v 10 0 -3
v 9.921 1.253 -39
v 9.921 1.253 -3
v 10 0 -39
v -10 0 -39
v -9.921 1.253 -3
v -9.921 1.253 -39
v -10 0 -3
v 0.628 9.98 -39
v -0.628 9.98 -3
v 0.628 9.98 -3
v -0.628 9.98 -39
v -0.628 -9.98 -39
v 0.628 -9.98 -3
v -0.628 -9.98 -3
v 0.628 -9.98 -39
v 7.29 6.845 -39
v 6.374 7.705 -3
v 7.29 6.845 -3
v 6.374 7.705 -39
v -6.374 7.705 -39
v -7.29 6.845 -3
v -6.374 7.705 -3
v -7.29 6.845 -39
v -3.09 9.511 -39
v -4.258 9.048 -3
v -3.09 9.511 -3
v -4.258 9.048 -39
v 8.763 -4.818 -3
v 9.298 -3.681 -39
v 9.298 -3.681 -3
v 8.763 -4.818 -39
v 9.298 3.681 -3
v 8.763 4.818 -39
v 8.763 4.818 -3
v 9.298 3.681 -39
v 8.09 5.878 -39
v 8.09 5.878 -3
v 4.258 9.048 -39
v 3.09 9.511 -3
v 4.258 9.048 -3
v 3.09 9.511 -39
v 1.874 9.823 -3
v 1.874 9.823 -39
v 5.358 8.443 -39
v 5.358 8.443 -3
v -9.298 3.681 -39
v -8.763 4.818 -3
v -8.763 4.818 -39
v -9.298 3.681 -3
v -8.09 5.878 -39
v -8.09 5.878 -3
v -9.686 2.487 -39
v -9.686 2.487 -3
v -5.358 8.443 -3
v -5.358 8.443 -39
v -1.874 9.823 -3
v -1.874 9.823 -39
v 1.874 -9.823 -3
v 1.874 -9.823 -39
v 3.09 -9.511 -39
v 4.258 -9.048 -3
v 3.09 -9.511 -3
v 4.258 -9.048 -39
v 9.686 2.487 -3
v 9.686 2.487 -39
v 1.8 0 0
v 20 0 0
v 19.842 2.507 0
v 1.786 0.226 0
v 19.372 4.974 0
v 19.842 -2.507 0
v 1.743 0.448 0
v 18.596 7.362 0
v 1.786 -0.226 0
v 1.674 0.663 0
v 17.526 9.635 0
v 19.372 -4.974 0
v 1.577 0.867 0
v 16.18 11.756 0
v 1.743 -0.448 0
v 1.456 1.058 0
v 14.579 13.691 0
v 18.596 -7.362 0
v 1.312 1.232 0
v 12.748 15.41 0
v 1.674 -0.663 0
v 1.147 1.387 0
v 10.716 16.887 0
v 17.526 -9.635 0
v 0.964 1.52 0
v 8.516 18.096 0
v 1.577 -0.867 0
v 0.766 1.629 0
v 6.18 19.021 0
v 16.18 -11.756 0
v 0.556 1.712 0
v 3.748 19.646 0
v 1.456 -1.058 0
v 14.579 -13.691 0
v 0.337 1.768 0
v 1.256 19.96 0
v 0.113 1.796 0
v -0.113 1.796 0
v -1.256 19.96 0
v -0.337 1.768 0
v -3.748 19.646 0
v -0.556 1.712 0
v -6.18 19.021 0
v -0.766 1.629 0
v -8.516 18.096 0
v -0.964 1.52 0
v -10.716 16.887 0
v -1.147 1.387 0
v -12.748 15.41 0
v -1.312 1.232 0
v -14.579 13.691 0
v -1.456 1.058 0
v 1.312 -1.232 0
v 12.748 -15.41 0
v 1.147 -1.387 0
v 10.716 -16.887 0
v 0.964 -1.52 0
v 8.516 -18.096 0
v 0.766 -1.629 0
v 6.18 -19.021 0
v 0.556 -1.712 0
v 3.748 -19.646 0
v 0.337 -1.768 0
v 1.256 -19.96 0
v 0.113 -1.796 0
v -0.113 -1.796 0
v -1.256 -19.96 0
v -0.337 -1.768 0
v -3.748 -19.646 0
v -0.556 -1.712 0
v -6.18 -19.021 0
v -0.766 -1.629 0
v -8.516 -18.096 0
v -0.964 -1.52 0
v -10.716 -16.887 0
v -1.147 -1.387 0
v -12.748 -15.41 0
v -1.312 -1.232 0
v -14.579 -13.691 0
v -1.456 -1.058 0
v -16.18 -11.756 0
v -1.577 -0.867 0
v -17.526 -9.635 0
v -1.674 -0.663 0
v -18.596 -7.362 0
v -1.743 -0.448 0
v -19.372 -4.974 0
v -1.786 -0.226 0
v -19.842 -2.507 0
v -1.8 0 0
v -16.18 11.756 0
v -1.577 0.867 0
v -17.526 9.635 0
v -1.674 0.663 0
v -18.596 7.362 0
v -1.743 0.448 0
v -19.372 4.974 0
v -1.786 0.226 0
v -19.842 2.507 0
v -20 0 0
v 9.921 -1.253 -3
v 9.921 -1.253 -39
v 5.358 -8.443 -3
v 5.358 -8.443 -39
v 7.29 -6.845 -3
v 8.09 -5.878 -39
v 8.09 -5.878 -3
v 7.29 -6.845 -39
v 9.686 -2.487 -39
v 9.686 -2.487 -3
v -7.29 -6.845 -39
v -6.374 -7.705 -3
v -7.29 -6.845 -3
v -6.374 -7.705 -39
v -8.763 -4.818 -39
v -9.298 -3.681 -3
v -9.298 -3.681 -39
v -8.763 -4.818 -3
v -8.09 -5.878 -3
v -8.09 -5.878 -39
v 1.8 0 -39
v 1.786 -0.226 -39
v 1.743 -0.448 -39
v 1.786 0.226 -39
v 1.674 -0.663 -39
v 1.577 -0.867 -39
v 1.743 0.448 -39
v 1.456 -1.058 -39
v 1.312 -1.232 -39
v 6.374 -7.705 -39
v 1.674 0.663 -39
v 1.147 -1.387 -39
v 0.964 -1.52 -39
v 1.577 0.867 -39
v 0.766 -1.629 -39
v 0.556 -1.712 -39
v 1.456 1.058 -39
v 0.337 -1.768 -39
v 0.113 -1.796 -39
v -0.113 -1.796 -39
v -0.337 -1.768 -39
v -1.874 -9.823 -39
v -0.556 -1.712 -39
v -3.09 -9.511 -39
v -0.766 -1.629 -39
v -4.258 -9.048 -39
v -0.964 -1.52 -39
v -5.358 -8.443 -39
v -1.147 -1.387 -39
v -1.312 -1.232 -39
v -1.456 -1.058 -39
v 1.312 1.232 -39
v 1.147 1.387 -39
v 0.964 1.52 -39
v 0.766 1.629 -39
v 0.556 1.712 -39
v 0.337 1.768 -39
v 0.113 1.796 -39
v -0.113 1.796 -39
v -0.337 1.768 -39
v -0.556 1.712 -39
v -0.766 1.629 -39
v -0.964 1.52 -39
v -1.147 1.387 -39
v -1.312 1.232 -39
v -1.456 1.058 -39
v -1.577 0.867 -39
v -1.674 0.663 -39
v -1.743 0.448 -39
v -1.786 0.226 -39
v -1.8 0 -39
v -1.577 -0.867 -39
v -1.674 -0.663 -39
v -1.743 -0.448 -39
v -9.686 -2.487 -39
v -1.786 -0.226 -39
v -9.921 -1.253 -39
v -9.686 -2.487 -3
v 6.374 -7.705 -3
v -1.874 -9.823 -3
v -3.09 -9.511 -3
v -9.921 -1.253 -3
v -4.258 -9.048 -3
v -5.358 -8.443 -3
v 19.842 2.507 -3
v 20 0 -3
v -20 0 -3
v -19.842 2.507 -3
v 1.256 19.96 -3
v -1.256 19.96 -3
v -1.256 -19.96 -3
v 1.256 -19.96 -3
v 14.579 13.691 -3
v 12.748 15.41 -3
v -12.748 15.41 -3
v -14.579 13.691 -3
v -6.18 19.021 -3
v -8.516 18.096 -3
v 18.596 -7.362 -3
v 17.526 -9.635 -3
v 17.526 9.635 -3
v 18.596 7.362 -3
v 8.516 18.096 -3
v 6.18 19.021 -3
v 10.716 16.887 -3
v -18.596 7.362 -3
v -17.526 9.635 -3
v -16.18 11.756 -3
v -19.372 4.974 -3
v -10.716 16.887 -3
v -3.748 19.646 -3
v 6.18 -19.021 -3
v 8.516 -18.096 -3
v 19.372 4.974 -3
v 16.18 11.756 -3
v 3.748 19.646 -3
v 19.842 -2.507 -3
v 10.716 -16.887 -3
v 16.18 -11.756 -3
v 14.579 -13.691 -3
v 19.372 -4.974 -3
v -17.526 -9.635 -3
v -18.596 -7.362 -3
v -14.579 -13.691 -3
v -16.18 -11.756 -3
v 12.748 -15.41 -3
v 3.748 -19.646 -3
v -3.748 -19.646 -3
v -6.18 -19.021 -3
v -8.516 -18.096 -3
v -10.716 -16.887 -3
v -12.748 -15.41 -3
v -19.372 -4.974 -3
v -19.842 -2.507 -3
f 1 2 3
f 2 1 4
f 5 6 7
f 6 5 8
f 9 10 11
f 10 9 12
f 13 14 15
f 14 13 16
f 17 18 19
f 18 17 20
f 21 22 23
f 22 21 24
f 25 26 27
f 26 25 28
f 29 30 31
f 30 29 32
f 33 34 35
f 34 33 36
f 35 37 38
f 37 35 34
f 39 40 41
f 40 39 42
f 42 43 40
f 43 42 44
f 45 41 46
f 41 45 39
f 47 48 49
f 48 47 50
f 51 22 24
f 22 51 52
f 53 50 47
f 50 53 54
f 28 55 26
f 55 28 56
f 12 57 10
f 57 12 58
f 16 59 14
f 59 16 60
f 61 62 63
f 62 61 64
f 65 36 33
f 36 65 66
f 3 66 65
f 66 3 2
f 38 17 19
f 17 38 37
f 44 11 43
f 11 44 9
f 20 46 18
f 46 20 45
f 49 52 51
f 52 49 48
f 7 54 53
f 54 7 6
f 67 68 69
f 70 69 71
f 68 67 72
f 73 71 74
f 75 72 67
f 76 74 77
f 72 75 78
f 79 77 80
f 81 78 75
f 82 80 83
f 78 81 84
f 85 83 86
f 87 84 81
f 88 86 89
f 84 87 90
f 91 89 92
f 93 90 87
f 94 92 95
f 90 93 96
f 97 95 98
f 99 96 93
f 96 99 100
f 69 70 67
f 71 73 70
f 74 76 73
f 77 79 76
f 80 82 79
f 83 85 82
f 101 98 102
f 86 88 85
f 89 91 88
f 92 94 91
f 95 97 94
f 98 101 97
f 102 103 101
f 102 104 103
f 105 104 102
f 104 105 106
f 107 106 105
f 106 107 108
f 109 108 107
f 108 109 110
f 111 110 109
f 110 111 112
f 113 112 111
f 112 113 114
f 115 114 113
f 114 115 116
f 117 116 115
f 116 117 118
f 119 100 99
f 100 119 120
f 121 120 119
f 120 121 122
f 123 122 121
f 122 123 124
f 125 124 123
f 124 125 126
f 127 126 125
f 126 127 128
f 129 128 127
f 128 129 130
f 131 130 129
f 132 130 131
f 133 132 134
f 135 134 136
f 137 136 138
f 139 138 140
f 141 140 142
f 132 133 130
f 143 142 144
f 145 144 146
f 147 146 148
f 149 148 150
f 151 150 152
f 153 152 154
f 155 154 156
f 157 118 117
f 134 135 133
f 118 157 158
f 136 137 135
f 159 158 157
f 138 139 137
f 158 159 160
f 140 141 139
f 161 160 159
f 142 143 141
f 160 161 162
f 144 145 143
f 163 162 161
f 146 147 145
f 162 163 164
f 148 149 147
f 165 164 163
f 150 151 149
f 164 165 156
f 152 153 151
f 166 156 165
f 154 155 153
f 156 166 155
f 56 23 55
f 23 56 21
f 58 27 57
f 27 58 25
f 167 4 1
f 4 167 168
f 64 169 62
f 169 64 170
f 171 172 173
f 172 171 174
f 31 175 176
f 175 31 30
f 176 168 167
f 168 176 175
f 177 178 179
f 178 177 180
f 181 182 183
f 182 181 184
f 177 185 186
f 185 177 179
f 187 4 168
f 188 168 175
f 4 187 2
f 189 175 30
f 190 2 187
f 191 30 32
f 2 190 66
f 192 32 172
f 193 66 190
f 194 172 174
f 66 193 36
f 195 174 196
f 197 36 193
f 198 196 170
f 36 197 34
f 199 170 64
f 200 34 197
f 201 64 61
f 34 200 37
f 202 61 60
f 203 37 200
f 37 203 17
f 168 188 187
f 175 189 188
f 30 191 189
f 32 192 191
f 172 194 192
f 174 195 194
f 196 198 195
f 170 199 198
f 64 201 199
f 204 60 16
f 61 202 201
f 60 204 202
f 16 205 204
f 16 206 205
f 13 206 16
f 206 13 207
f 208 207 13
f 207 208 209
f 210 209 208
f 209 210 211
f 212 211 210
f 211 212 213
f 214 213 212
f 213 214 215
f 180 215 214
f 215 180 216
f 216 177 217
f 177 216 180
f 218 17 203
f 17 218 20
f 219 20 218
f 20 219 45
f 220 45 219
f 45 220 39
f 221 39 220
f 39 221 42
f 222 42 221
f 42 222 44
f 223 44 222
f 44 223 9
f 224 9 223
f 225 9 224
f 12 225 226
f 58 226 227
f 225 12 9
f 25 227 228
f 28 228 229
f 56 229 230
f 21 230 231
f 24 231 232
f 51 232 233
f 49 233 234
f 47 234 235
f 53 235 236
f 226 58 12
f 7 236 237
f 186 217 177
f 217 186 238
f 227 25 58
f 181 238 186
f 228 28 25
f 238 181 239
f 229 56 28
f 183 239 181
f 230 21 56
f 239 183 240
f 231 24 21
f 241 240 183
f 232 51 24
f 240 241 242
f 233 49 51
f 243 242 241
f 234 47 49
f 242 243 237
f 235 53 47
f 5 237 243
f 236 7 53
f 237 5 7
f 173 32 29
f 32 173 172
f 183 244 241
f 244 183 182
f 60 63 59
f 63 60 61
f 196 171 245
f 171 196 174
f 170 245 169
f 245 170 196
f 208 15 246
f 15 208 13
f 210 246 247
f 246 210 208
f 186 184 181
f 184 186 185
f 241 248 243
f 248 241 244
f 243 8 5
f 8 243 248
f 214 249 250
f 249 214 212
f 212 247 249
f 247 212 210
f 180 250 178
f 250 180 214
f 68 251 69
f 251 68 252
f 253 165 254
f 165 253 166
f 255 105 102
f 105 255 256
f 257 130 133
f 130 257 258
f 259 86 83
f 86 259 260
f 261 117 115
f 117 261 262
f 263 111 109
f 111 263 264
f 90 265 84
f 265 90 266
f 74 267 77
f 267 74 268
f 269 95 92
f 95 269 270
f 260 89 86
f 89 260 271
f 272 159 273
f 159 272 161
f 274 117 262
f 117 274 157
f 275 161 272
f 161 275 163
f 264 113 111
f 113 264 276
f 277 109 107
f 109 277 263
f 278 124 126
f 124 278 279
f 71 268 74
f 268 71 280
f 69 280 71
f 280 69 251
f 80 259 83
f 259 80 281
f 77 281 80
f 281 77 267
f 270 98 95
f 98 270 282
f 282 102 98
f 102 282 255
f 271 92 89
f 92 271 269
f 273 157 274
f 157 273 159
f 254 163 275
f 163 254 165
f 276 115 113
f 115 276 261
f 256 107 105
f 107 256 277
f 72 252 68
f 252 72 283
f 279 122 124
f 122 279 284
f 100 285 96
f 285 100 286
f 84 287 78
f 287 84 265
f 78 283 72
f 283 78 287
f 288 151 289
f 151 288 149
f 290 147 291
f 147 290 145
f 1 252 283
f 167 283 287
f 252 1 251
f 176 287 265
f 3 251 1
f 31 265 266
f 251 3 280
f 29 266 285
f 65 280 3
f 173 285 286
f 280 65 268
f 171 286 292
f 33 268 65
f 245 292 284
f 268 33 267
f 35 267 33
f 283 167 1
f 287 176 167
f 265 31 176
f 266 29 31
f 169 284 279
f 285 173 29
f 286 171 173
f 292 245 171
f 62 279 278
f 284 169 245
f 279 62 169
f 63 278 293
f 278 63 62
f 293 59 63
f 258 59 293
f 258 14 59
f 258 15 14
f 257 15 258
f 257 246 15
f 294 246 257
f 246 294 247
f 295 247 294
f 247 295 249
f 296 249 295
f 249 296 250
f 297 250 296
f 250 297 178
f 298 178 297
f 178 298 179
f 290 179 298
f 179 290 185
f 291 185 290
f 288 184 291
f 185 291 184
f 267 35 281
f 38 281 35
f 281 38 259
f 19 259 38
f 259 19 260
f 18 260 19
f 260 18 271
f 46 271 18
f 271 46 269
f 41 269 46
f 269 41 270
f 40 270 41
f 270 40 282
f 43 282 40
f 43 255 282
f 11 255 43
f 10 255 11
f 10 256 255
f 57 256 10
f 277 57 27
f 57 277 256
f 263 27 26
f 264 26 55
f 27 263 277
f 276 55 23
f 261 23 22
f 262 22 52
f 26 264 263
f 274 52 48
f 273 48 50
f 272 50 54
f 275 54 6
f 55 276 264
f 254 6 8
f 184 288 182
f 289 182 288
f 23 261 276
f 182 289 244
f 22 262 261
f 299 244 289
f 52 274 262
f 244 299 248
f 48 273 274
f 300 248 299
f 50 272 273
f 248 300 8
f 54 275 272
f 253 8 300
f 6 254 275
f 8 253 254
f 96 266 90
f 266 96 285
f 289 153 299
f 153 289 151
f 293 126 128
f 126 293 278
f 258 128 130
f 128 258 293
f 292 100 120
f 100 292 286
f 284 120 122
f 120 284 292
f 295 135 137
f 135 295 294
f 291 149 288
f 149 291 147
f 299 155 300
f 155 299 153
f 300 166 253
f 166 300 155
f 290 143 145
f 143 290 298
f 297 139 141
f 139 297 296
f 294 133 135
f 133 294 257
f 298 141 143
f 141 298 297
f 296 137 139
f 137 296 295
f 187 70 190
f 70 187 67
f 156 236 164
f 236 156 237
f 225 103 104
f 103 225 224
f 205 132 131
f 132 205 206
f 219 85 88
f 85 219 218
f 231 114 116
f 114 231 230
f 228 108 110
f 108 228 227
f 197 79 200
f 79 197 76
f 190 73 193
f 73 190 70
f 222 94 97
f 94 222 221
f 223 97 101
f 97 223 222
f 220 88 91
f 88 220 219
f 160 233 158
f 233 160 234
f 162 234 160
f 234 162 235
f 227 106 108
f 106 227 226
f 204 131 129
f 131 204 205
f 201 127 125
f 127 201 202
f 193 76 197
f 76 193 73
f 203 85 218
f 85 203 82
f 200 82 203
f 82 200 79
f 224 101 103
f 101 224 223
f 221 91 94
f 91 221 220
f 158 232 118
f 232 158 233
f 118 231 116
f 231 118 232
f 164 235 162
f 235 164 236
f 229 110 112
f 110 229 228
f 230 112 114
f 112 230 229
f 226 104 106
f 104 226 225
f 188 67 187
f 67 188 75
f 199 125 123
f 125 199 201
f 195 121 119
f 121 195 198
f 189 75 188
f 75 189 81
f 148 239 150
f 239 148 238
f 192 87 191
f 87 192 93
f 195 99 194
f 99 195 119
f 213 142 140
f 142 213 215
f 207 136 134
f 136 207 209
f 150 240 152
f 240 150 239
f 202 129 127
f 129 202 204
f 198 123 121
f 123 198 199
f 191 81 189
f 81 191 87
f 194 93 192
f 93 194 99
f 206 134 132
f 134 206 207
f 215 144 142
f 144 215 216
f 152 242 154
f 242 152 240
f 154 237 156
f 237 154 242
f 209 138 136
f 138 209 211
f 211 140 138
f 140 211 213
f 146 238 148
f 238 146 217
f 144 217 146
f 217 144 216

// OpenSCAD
$fn = 50;


difference() {
	union() {
		translate(v = [0, 0, -39.0000000000]) {
			cylinder(h = 39, r = 10.0000000000);
		}
		translate(v = [0, 0, -3.0000000000]) {
			cylinder(h = 3, r = 20.0000000000);
		}
	}
	union() {
		#translate(v = [0, 0, -39]) {
			cylinder(h = 39, r = 1.8000000000);
		}
	}
}
